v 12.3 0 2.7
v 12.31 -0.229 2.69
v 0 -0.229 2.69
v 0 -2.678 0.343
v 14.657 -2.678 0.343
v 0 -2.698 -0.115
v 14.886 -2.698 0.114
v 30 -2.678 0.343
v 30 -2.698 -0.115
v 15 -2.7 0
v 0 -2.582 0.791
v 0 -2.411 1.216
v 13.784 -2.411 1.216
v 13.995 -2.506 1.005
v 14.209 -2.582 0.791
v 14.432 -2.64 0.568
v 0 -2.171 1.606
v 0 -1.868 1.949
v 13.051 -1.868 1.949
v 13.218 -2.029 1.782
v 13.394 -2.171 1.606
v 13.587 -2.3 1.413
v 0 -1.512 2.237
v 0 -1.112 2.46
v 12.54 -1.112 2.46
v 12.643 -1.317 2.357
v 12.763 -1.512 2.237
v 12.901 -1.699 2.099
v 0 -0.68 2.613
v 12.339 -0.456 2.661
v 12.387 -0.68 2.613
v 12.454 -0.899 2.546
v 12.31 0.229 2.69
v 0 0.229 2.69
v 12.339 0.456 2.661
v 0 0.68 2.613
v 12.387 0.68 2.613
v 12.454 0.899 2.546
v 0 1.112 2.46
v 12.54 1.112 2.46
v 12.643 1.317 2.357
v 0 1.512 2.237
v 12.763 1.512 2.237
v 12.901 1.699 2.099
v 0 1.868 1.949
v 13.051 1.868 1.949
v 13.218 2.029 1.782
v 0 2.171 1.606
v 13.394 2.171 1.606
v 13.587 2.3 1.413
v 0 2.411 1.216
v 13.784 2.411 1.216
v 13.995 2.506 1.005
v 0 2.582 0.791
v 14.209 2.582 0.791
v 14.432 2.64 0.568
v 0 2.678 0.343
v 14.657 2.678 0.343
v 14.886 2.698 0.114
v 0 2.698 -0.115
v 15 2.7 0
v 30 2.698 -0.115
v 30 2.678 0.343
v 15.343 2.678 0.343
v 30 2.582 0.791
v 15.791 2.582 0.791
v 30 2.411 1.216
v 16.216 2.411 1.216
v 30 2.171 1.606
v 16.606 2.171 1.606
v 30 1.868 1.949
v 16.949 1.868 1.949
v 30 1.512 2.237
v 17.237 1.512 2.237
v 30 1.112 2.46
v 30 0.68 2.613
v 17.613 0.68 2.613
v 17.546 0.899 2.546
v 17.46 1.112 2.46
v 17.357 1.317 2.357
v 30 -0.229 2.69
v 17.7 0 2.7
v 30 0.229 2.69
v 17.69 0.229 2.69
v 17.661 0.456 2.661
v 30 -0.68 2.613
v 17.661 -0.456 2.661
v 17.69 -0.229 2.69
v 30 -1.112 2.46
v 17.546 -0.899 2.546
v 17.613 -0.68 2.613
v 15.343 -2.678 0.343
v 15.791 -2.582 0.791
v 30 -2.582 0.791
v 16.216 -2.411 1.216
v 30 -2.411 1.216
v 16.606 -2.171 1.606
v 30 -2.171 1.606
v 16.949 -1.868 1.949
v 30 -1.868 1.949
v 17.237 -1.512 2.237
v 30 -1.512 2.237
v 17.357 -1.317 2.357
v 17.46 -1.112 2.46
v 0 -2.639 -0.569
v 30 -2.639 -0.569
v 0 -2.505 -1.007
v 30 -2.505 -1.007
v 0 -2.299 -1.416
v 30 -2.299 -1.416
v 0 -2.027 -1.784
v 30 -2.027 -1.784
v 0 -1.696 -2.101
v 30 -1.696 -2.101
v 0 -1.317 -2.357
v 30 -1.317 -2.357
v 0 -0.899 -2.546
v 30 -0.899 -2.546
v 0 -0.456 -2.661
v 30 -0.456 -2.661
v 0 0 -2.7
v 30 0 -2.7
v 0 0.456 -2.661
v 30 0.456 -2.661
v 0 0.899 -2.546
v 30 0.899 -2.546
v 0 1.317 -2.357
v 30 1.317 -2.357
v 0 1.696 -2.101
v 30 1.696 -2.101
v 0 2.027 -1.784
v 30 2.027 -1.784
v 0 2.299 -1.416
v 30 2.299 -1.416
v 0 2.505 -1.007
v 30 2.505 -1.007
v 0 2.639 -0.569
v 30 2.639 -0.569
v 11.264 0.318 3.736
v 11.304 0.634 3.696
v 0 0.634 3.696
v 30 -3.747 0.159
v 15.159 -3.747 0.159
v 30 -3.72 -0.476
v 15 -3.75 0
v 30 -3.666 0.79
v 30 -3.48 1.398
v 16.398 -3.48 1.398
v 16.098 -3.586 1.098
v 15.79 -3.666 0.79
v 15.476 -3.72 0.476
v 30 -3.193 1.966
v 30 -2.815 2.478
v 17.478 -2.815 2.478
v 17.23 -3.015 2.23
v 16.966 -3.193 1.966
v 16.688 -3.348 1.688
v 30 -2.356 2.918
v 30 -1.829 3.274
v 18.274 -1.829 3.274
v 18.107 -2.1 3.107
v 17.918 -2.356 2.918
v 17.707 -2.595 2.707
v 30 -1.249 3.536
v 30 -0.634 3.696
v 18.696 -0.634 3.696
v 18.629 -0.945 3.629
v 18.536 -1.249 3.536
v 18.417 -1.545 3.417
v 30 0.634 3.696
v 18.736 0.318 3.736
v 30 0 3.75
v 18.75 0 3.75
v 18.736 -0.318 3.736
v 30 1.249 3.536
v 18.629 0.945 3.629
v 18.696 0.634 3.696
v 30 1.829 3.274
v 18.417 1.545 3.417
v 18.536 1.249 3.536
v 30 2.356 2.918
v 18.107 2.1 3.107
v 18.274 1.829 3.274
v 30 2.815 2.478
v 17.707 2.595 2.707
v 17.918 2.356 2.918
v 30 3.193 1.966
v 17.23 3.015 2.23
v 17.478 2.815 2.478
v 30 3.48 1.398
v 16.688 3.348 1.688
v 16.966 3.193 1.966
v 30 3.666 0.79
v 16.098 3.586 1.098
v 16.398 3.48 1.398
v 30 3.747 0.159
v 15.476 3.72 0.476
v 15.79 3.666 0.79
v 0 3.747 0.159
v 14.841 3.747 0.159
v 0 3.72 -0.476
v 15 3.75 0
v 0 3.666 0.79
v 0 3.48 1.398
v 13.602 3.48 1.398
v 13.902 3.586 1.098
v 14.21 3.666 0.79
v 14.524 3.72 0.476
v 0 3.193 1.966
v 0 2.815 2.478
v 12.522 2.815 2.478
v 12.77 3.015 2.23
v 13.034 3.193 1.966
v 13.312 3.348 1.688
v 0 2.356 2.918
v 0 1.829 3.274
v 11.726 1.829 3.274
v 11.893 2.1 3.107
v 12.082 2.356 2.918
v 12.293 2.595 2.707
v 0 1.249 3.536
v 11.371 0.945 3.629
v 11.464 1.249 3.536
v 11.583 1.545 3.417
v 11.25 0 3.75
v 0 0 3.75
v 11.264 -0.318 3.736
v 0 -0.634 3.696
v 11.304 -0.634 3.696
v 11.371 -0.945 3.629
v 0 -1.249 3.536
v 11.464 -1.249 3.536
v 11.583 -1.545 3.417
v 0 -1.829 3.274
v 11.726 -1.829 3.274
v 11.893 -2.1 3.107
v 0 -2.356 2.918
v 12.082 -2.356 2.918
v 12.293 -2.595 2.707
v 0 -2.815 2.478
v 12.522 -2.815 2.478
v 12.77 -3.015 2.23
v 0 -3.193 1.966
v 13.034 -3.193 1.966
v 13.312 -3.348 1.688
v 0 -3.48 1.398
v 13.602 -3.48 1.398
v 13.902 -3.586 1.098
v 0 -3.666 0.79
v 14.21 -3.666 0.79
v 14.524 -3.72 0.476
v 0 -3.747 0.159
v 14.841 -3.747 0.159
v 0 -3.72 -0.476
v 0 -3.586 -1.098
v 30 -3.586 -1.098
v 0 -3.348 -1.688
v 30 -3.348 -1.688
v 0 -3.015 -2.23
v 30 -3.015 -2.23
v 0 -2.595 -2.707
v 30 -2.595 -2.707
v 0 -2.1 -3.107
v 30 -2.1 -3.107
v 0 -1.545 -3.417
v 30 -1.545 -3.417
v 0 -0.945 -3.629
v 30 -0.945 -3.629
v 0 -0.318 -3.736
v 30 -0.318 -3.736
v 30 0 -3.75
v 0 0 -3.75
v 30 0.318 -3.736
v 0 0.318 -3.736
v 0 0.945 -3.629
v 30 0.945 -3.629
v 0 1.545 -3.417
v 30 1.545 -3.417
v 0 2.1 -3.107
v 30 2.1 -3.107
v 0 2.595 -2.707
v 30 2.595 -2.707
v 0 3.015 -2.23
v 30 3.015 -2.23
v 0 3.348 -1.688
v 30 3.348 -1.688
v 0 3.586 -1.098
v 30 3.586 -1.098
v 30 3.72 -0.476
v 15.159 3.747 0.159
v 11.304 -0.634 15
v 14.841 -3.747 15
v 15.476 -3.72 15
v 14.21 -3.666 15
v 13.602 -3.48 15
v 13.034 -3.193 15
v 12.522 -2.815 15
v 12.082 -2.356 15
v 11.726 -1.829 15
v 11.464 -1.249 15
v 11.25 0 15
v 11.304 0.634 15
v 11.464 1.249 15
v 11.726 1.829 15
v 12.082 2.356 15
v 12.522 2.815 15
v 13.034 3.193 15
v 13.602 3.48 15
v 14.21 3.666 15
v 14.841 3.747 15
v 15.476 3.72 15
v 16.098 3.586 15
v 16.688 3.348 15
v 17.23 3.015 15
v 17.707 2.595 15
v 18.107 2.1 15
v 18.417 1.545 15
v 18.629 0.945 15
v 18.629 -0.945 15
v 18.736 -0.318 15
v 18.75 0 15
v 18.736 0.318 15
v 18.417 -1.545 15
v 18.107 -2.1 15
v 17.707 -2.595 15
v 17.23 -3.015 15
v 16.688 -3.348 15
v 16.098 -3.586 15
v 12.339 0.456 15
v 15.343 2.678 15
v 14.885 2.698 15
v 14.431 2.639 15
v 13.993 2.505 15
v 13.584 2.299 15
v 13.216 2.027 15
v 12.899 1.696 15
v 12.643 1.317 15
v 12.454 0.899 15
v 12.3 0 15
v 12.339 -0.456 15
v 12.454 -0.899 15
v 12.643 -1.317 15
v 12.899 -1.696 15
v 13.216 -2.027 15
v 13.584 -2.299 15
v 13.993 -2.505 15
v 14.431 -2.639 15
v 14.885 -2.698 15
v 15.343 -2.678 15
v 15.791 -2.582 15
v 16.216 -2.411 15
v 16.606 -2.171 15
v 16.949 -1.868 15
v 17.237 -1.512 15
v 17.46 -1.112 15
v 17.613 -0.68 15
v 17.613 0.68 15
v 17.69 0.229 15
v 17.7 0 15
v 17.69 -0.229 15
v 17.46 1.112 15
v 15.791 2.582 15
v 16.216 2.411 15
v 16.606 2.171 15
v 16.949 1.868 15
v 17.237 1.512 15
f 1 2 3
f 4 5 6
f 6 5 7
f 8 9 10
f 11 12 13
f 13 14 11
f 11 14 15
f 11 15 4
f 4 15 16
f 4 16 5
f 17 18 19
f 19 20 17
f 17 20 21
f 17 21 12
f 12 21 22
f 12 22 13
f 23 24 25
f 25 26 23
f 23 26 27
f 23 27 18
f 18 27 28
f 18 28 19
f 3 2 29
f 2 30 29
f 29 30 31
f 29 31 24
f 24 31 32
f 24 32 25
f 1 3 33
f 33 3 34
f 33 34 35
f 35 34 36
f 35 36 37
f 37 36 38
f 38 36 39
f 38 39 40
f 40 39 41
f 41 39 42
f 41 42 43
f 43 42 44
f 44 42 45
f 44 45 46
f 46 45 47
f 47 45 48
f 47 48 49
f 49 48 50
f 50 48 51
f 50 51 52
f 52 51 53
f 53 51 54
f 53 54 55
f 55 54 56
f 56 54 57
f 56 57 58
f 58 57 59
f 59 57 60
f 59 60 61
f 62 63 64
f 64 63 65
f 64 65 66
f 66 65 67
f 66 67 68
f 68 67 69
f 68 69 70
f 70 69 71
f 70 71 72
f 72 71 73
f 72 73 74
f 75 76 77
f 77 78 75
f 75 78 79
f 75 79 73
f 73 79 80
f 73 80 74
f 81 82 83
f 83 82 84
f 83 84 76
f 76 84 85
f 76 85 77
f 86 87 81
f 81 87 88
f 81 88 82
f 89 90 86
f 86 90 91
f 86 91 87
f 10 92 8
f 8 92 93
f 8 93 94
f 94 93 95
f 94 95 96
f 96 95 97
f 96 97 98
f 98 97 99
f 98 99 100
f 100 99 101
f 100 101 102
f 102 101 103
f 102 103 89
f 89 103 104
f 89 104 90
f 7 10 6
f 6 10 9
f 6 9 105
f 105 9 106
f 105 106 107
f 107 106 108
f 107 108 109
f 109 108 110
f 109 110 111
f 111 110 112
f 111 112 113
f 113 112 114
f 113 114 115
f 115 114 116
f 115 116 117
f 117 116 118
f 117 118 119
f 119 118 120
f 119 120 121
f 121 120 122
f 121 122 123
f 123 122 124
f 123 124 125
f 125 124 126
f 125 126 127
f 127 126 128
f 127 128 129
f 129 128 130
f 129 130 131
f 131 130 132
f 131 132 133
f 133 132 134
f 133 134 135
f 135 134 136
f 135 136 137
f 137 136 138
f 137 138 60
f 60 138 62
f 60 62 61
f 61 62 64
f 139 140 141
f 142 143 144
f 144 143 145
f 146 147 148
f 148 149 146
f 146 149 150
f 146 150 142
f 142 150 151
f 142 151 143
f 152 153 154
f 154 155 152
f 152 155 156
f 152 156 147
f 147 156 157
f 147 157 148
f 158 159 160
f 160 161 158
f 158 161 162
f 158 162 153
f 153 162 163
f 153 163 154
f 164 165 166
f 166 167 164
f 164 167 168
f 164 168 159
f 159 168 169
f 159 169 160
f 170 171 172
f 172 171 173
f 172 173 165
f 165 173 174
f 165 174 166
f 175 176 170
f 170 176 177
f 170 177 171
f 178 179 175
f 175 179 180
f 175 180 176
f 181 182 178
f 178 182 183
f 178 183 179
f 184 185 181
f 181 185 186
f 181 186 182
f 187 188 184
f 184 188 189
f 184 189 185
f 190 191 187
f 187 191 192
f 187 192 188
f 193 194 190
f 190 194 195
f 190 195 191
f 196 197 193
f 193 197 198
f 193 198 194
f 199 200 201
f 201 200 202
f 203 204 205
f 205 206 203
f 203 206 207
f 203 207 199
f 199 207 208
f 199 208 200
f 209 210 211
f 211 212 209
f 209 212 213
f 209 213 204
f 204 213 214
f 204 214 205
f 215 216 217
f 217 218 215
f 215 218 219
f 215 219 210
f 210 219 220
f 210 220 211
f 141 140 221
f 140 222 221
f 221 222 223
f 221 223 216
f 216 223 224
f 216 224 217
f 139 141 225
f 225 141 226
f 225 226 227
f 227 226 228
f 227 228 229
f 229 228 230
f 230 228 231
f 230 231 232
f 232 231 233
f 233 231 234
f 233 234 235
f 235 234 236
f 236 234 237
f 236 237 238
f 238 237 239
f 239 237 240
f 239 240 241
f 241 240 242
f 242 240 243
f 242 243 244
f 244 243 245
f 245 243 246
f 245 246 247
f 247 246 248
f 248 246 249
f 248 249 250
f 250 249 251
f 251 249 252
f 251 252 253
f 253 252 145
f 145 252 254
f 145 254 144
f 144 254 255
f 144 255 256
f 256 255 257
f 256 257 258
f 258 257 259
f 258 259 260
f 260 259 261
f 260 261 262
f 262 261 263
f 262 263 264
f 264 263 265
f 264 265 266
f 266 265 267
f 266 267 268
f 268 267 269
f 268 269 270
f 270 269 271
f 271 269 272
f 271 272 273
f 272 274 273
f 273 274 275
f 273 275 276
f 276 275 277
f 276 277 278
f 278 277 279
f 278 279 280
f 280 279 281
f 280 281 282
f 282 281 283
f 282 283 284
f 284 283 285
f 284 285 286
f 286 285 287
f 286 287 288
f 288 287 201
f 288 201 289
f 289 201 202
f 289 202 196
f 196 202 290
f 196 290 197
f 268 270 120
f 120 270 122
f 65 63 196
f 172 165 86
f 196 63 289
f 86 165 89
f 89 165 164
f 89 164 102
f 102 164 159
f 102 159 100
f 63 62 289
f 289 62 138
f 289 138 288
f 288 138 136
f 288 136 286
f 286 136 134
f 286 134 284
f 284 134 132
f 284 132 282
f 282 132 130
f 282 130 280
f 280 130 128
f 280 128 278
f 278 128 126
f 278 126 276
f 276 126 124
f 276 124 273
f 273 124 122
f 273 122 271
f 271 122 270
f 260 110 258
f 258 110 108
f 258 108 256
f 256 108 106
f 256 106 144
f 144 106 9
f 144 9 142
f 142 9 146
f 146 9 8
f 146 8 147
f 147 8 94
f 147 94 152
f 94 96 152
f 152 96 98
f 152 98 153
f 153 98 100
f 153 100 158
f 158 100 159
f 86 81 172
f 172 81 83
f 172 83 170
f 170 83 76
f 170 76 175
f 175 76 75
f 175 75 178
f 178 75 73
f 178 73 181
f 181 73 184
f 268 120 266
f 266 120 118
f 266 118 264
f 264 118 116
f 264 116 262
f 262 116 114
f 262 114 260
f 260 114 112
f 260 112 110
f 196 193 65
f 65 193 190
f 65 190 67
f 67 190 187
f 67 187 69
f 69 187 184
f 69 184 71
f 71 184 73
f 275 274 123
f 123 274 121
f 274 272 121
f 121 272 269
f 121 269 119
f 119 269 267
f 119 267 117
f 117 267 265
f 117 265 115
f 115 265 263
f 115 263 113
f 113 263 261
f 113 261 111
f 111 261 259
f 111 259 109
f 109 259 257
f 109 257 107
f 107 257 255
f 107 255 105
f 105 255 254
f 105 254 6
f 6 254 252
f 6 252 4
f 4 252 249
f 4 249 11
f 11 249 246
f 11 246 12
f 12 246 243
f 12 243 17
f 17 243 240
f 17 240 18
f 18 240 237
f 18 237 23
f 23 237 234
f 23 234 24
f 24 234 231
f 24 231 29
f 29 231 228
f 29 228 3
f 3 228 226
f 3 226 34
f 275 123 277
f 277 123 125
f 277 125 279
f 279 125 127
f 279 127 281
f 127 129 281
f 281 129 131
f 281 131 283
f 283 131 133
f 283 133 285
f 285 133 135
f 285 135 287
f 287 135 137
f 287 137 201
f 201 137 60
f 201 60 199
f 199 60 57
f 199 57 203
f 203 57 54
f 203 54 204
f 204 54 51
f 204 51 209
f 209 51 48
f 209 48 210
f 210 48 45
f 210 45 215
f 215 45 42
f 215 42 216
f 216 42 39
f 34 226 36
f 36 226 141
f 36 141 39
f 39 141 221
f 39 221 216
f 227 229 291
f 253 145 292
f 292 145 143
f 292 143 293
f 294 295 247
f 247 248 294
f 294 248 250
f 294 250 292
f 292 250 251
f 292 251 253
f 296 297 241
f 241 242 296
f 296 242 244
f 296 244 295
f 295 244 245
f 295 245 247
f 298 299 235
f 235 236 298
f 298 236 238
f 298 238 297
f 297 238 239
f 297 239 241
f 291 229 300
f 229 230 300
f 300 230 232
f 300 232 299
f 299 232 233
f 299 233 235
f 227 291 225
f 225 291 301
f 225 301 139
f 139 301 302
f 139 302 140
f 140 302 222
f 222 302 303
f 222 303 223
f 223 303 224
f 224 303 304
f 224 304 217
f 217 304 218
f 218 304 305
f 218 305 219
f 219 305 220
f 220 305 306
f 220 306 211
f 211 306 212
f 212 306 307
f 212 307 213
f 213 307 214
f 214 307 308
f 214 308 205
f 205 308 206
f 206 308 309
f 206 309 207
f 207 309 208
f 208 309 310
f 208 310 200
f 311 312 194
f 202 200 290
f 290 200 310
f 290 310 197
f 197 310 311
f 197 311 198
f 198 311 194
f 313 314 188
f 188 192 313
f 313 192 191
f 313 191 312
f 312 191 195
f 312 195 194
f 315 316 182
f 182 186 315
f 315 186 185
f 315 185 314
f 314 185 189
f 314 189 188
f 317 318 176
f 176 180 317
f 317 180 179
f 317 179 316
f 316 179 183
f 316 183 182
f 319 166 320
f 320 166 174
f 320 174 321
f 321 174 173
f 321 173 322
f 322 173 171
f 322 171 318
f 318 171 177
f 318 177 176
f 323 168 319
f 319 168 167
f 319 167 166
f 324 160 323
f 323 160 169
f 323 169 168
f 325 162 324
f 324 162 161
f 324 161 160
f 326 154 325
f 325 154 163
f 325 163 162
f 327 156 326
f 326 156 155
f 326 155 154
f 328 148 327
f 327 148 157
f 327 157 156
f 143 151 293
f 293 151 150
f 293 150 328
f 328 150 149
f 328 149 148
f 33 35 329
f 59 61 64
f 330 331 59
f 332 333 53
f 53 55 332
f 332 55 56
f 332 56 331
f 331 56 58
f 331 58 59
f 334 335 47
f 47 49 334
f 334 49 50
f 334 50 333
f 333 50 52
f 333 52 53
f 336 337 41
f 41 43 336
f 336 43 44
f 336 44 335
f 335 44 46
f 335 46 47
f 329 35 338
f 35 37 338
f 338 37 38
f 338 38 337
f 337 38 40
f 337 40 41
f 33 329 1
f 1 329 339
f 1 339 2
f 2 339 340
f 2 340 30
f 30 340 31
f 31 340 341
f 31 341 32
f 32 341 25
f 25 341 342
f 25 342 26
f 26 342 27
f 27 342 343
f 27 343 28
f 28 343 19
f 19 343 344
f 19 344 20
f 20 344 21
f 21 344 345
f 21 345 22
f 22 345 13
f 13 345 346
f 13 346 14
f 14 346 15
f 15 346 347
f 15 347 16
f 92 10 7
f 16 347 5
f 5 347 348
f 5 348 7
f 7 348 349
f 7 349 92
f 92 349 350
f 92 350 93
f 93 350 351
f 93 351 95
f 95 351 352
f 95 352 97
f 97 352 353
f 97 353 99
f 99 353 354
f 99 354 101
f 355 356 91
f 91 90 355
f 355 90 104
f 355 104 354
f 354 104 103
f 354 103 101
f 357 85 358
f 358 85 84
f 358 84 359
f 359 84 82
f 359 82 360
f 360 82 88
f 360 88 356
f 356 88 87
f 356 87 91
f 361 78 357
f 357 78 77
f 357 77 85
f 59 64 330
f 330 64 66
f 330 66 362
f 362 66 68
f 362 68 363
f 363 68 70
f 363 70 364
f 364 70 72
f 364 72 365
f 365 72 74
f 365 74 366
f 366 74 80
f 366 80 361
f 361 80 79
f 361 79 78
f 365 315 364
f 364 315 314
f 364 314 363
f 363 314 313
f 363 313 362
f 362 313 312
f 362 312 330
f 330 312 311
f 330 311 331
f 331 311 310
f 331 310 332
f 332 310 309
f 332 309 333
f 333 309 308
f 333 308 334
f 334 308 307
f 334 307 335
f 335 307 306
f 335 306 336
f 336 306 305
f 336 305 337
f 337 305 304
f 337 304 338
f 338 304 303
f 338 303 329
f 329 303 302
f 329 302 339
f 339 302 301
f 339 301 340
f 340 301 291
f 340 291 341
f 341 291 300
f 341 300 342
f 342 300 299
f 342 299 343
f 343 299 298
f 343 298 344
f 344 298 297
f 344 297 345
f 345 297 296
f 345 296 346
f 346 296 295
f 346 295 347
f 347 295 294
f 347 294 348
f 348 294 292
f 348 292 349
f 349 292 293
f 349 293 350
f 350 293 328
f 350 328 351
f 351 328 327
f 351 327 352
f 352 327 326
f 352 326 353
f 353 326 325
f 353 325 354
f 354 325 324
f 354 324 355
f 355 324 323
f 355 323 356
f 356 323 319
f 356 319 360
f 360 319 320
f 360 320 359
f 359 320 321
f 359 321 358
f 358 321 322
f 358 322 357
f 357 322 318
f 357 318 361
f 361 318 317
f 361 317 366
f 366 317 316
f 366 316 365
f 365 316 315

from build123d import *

# Parameters (mm, degrees)
SKETCH14_R          = 3.75
BOSS_EXTRUDE1_DEPTH = 30
SKETCH15_R          = 2.7
CUT_EXTRUDE4_DEPTH  = 30
SKETCH16_R          = 3.75
SKETCH16_R_2        = 2.7
BOSS_EXTRUDE2_DEPTH = 15
CUT_EXTRUDE5_START  = 25
SKETCH17_R          = 2.7
CUT_EXTRUDE5_DEPTH  = 25
SKETCH18_R          = 2.7
CUT_EXTRUDE6_DEPTH  = 25


with BuildPart() as part:
    # Sketch14 → Boss-Extrude1 (new body)
    with BuildSketch(Plane(origin=(0, 0, 0), x_dir=(0, 0, -1), z_dir=(1, 0, 0))):
        Circle(SKETCH14_R)
    extrude(amount=BOSS_EXTRUDE1_DEPTH)

    # Sketch15 → Cut-Extrude4 (cut)
    with BuildSketch(Plane(origin=(30, 0, 0), x_dir=(0, 0, -1), z_dir=(1, 0, 0))):
        Circle(SKETCH15_R)
    extrude(amount=-CUT_EXTRUDE4_DEPTH, mode=Mode.SUBTRACT)

    # Sketch16 → Boss-Extrude2 (add)
    with BuildSketch(Plane.XY):
        with Locations(Location((15, 0, 0), (0, 0, 90))):
            Circle(SKETCH16_R)
        with Locations((15, 0)):
            Circle(SKETCH16_R_2, mode=Mode.SUBTRACT)
    extrude(amount=BOSS_EXTRUDE2_DEPTH)

    # Sketch17 → Cut-Extrude5 (cut)
    with BuildSketch(Plane(origin=(0, 0, 0), x_dir=(0, 0, -1), z_dir=(1, 0, 0)).offset(CUT_EXTRUDE5_START)):
        Circle(SKETCH17_R)
    extrude(amount=-CUT_EXTRUDE5_DEPTH, mode=Mode.SUBTRACT)

    # Sketch18 → Cut-Extrude6 (cut)
    with BuildSketch(Plane.XY):
        with Locations(Location((15, 0, 0), (0, 0, 270))):
            Circle(SKETCH18_R)
    extrude(amount=CUT_EXTRUDE6_DEPTH, mode=Mode.SUBTRACT)


solid = part.part
